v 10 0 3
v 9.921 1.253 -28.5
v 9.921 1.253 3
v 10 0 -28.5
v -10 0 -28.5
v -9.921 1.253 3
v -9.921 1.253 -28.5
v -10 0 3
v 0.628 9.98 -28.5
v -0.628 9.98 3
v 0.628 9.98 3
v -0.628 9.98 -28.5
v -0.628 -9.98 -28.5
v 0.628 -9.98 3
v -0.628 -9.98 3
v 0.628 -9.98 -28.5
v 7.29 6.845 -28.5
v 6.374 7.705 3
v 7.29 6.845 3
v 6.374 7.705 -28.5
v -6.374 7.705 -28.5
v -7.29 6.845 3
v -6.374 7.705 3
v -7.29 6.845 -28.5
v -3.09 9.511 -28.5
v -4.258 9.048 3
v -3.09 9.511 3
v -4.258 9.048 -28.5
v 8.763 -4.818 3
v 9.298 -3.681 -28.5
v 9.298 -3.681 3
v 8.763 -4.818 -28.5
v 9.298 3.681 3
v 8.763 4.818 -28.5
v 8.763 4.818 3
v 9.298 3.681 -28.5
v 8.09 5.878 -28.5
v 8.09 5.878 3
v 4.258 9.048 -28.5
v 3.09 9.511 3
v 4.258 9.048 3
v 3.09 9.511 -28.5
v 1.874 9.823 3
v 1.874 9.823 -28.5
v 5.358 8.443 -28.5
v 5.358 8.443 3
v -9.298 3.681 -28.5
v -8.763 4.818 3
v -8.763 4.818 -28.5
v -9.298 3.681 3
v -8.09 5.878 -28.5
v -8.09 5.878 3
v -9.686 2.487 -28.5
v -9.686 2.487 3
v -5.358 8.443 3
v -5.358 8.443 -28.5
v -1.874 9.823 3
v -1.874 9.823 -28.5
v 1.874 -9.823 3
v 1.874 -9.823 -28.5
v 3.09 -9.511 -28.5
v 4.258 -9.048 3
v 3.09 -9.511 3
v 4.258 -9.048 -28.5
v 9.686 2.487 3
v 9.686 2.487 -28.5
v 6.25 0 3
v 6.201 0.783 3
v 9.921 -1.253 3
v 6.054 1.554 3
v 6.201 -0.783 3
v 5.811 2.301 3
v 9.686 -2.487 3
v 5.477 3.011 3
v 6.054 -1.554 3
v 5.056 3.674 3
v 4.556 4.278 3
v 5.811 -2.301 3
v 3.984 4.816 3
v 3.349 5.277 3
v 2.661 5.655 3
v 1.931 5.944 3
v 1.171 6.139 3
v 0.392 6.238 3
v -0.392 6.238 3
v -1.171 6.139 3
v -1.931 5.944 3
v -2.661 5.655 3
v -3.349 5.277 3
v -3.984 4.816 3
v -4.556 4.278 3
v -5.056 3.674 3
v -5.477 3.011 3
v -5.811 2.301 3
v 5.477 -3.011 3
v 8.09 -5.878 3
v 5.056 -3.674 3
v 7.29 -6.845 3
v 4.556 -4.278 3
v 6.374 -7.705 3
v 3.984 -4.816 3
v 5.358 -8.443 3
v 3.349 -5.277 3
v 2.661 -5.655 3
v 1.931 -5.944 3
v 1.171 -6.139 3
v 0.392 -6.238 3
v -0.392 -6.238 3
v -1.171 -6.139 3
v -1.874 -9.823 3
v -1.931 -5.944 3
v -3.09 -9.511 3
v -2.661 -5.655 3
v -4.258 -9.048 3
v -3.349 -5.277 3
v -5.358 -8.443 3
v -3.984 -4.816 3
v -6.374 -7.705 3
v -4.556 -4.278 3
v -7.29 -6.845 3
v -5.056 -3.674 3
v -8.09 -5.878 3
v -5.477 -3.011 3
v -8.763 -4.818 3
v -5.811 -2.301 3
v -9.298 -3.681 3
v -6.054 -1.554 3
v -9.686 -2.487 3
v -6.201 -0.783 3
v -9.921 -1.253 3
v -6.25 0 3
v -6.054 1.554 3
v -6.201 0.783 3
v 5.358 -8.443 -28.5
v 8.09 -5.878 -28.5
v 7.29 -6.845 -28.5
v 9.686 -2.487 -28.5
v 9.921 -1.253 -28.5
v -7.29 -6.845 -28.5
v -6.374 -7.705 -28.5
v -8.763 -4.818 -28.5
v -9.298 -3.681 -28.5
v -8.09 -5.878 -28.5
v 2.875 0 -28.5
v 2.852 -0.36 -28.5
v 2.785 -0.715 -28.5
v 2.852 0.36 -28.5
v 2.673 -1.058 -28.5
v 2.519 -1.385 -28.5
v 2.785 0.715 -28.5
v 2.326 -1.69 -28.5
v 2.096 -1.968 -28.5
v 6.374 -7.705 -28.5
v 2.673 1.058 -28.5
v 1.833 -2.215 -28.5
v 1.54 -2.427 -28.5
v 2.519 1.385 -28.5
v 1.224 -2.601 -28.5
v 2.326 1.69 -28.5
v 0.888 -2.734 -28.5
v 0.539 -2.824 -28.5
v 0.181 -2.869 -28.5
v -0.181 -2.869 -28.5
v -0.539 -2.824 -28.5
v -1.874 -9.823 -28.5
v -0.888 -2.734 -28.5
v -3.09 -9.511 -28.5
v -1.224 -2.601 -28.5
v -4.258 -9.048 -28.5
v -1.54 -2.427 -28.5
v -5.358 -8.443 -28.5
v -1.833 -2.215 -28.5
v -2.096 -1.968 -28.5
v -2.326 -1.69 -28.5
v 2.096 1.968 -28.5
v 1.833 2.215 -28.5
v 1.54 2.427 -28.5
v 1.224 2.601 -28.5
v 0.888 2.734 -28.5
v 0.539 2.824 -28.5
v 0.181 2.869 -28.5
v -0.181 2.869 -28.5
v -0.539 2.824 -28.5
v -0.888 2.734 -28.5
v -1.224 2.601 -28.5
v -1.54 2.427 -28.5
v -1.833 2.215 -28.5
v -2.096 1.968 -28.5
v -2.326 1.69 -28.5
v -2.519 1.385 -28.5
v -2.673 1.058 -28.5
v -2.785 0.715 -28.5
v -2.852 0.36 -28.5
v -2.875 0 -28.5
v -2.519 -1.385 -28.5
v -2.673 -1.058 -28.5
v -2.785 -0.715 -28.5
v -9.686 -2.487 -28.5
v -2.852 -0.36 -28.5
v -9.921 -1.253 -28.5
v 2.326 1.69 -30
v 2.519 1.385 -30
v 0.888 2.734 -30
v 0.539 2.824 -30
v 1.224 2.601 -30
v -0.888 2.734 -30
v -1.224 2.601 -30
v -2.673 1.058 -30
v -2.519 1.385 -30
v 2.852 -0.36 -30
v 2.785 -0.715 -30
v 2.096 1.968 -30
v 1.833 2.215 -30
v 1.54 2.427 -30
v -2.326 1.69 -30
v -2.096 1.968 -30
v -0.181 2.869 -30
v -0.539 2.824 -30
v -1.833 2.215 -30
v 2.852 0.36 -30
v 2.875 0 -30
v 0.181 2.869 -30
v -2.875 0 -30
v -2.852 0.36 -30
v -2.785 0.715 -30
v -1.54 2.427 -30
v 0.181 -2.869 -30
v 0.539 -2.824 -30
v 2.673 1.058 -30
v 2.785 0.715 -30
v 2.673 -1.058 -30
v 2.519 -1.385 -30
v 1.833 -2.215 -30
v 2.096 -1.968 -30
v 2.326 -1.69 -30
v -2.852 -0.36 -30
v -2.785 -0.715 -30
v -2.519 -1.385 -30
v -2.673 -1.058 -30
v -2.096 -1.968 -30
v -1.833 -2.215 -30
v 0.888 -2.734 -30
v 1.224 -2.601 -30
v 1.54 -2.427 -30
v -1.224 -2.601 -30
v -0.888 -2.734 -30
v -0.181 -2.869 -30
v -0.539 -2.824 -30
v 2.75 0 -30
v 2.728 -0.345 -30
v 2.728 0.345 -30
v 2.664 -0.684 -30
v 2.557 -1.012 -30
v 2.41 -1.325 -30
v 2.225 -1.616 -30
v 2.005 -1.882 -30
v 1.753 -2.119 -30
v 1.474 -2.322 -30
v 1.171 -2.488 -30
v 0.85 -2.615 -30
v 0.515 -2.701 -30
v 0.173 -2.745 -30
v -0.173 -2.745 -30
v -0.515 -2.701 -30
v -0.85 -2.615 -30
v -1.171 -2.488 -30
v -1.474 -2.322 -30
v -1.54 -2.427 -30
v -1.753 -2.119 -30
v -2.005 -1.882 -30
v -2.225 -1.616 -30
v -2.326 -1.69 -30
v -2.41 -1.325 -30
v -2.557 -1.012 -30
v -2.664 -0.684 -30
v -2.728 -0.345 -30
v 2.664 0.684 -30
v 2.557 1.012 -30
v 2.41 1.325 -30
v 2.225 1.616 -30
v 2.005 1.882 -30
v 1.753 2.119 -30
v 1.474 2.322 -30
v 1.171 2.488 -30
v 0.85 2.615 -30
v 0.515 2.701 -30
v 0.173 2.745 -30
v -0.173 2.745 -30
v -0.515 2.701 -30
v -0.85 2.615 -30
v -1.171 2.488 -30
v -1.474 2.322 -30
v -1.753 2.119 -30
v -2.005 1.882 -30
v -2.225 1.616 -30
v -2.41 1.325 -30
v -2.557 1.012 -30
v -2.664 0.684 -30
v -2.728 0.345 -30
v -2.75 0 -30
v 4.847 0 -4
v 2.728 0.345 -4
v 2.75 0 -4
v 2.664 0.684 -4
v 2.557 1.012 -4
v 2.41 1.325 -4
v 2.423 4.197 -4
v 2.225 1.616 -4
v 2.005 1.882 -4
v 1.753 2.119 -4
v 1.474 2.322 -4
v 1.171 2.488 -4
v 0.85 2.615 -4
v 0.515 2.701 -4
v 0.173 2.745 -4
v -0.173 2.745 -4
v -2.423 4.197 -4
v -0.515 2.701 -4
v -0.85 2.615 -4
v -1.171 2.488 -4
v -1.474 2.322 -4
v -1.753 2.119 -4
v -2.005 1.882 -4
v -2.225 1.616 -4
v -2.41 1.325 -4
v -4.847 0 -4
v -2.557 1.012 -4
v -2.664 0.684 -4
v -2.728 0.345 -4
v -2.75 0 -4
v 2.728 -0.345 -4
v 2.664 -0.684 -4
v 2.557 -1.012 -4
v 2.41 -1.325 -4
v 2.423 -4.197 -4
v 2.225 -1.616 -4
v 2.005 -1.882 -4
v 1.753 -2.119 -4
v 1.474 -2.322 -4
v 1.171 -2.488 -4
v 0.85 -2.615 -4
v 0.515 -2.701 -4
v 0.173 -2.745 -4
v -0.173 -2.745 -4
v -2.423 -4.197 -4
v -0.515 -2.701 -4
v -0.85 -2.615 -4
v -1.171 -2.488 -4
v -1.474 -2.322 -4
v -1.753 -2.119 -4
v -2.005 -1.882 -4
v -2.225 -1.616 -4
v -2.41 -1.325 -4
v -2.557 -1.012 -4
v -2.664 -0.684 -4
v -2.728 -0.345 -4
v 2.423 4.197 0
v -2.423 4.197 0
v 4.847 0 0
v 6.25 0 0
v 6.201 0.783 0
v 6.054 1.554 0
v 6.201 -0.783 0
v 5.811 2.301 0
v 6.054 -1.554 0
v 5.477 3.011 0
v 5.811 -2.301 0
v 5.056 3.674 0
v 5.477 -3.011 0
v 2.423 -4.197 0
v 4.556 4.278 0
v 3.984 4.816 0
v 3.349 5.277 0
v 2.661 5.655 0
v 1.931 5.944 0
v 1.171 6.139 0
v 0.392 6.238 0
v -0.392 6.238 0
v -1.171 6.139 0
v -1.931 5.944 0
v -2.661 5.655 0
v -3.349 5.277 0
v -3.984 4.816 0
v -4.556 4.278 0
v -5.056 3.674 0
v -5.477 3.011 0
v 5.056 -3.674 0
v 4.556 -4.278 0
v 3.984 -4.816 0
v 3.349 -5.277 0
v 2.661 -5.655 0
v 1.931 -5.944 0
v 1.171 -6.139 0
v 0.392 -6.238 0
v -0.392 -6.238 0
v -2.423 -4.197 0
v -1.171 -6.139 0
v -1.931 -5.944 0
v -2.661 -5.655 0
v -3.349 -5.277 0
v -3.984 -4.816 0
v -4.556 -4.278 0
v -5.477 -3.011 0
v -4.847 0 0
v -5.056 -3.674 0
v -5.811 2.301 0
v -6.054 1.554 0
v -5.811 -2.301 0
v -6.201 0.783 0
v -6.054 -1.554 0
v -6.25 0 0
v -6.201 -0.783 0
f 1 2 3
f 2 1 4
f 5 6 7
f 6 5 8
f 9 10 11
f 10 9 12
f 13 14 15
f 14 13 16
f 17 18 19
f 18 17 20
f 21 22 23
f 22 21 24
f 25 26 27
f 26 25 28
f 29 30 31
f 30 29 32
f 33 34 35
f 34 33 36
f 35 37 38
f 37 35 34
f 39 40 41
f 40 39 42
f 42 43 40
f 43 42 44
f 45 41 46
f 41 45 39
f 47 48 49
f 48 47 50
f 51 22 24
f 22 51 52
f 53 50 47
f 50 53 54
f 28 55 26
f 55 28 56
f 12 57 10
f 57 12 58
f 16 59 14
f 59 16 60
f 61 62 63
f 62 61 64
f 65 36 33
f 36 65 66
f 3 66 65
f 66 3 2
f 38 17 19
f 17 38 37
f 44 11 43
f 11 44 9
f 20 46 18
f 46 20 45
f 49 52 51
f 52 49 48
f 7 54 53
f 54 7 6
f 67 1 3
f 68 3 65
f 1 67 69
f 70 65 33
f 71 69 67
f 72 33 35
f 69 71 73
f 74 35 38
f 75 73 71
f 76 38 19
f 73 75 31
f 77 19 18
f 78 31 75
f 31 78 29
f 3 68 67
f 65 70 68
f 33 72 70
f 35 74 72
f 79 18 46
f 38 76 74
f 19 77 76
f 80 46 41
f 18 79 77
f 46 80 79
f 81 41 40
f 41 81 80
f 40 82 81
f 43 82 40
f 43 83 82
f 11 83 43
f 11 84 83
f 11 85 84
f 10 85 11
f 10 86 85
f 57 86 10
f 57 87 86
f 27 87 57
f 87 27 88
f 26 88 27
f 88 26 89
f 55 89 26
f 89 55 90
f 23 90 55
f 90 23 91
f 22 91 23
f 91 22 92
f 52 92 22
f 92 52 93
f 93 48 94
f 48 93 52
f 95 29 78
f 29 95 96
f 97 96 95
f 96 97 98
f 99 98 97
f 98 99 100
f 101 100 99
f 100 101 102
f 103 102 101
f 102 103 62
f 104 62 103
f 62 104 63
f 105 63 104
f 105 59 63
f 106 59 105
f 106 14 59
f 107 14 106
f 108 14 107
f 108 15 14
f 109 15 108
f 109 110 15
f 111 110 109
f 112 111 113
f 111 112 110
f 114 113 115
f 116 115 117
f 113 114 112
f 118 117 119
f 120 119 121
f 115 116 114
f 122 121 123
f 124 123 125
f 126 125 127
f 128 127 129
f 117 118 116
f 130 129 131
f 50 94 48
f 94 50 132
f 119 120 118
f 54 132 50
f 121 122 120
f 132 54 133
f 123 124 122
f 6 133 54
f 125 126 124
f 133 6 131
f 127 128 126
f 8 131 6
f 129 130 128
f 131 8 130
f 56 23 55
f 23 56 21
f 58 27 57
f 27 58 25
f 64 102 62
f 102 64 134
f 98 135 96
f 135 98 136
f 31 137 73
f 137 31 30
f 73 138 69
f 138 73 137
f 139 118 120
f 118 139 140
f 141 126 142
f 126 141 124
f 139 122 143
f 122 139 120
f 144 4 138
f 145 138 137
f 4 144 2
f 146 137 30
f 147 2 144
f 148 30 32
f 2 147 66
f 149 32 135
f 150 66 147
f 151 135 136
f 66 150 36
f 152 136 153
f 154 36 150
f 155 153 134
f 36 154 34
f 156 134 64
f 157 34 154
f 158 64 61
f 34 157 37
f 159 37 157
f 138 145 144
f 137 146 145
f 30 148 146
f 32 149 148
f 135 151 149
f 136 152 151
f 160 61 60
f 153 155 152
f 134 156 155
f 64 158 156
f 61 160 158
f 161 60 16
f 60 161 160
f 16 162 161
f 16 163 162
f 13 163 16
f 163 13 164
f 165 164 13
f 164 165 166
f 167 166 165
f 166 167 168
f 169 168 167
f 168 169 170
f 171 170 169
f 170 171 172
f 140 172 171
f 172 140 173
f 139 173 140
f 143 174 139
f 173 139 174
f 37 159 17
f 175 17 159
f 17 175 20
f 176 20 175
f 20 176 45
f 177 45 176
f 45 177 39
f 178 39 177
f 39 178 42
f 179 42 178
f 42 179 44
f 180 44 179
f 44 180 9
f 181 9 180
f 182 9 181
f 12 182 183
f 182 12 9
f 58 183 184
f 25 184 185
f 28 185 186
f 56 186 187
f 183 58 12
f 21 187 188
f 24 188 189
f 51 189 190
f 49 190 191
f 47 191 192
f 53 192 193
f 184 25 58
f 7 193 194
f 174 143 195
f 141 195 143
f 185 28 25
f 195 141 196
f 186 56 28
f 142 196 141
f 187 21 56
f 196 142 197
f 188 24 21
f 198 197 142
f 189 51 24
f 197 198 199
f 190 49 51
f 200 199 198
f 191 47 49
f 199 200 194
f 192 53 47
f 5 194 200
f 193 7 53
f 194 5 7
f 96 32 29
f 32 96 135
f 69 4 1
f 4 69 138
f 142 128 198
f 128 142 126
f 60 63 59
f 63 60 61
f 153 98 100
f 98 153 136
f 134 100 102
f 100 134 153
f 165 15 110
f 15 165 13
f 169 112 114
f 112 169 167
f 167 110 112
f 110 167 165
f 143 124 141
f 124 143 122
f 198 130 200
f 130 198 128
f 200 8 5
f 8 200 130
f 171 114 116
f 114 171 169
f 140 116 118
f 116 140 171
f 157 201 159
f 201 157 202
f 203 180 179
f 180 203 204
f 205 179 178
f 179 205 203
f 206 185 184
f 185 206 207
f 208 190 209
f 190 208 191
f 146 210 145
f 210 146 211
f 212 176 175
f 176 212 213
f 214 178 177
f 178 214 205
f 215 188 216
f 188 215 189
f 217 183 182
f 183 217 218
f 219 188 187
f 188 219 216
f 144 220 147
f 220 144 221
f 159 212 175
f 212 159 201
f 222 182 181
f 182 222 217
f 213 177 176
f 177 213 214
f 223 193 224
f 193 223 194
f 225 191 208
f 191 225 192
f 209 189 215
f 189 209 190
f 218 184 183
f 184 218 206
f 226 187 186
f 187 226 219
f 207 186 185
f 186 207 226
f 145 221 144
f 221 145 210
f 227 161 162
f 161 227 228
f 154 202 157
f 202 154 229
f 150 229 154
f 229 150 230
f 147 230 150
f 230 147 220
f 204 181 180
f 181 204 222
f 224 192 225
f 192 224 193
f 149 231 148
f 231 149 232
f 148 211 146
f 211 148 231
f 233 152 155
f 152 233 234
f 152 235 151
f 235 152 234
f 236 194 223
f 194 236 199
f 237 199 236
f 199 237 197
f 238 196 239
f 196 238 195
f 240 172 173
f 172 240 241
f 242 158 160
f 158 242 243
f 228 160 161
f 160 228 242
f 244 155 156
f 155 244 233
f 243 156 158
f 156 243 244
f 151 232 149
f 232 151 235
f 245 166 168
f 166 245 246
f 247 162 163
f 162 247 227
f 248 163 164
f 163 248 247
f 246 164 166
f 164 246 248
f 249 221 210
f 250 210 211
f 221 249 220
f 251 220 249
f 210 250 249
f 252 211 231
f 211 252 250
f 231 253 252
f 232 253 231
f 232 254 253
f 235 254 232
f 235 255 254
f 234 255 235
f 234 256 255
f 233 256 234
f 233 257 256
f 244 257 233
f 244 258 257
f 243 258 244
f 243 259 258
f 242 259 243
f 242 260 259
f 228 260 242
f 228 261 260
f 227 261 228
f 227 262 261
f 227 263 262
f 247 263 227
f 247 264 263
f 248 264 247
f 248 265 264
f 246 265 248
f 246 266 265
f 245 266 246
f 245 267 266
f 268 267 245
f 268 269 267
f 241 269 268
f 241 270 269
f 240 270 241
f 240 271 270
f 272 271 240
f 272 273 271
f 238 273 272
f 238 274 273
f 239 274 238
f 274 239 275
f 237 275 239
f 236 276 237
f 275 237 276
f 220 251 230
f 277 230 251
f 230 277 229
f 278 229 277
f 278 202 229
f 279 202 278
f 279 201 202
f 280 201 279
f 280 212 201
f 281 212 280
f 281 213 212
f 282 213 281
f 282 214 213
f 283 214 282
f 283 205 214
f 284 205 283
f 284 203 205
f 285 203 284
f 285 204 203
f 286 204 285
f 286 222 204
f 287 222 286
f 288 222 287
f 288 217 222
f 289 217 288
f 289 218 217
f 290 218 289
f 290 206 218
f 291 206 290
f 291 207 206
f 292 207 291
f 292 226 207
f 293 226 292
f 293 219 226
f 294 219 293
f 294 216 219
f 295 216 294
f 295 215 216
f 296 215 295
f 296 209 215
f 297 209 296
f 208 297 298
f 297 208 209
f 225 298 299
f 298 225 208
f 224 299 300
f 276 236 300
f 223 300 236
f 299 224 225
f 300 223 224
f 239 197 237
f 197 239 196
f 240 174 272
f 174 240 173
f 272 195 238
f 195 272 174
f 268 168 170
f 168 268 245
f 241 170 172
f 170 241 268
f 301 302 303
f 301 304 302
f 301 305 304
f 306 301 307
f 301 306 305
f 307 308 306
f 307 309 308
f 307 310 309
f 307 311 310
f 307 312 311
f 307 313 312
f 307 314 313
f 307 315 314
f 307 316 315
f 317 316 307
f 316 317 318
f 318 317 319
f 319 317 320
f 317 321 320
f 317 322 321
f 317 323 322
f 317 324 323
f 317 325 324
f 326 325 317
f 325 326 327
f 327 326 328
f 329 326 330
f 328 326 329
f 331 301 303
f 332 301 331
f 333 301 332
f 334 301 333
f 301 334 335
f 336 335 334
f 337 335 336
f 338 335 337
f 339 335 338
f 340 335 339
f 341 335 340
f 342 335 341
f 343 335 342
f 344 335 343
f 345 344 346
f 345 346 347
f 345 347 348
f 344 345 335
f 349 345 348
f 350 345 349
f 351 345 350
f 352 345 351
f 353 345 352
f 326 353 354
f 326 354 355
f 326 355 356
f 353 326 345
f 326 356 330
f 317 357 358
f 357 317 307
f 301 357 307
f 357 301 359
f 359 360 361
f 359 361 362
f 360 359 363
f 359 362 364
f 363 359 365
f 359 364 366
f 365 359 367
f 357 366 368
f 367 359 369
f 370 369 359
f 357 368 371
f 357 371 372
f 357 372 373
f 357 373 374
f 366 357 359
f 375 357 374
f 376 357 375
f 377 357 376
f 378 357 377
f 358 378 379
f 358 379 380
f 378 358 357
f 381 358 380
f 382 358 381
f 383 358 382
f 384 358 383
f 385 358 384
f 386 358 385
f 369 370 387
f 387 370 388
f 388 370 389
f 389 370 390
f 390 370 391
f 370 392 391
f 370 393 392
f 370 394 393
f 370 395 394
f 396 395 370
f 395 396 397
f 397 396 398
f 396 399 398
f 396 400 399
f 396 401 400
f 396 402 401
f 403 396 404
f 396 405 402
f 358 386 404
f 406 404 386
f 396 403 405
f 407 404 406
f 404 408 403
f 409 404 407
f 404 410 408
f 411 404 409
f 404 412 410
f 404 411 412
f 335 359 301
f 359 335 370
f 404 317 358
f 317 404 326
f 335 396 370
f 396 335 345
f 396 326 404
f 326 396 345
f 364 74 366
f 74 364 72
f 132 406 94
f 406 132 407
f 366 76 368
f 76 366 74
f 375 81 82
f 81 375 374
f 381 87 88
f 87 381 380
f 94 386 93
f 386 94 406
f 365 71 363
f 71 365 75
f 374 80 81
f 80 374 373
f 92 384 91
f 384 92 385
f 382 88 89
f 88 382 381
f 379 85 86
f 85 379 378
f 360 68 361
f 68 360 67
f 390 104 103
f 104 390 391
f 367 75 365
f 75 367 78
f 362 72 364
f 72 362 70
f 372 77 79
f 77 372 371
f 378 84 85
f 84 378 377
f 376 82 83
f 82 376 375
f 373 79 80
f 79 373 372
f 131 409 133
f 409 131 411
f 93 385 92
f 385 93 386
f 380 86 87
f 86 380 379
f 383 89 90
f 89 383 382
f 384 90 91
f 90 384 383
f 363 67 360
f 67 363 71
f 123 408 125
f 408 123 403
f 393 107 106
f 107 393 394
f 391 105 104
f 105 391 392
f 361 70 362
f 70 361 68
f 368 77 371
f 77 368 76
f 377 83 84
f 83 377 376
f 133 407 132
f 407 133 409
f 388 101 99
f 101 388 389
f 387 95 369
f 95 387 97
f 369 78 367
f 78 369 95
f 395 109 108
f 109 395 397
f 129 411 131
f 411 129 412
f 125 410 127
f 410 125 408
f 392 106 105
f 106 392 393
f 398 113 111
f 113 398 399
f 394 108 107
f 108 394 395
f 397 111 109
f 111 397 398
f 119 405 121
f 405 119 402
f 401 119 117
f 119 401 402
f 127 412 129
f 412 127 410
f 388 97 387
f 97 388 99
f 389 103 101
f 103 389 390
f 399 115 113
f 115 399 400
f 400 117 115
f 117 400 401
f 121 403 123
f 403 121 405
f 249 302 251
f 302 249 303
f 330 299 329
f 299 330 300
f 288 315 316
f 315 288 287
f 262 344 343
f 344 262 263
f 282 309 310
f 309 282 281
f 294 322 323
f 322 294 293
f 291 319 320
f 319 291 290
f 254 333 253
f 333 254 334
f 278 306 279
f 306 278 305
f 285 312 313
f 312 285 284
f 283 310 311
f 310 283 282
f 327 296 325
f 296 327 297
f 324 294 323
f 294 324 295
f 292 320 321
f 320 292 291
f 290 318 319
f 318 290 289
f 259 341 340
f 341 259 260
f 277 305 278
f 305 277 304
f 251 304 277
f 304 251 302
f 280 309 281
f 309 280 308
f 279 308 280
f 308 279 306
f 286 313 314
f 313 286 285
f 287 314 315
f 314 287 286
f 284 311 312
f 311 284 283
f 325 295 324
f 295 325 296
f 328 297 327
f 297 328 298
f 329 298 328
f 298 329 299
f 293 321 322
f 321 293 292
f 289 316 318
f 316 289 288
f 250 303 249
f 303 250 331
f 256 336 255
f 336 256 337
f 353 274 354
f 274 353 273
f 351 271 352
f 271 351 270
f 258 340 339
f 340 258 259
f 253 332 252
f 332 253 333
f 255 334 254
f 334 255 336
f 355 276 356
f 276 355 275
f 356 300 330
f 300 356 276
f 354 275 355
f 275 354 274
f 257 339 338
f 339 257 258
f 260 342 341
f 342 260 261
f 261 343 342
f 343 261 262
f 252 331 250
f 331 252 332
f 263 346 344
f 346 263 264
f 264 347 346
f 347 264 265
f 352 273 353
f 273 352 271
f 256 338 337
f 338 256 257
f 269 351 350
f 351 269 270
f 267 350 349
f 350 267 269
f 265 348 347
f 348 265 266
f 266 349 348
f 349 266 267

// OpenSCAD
$fn = 50;


difference() {
	union() {
		translate(v = [0, 0, -28.5000000000]) {
			cylinder(h = 31.5000000000, r = 10.0000000000);
		}
		#translate(v = [0, 0, -30.0000000000]) {
			cylinder(h = 30, r = 2.8750000000);
		}
	}
	union() {
		translate(v = [0, 0, 0]) {
			rotate(a = [0, 0, 0]) {
				difference() {
					union() {
						translate(v = [0, 0, -4]) {
							linear_extrude(height = 4) {
								polygon(points = [[4.8468000000, 0.0000000000], [2.4234000000, 4.1974519271], [-2.4234000000, 4.1974519271], [-4.8468000000, 0.0000000000], [-2.4234000000, -4.1974519271], [2.4234000000, -4.1974519271]]);
							}
						}
					}
					union();
				}
			}
		}
		#cylinder(h = 3, r = 6.2500000000);
		#translate(v = [0, 0, -100.0000000000]) {
			cylinder(h = 200, r = 2.7500000000);
		}
	}
}
